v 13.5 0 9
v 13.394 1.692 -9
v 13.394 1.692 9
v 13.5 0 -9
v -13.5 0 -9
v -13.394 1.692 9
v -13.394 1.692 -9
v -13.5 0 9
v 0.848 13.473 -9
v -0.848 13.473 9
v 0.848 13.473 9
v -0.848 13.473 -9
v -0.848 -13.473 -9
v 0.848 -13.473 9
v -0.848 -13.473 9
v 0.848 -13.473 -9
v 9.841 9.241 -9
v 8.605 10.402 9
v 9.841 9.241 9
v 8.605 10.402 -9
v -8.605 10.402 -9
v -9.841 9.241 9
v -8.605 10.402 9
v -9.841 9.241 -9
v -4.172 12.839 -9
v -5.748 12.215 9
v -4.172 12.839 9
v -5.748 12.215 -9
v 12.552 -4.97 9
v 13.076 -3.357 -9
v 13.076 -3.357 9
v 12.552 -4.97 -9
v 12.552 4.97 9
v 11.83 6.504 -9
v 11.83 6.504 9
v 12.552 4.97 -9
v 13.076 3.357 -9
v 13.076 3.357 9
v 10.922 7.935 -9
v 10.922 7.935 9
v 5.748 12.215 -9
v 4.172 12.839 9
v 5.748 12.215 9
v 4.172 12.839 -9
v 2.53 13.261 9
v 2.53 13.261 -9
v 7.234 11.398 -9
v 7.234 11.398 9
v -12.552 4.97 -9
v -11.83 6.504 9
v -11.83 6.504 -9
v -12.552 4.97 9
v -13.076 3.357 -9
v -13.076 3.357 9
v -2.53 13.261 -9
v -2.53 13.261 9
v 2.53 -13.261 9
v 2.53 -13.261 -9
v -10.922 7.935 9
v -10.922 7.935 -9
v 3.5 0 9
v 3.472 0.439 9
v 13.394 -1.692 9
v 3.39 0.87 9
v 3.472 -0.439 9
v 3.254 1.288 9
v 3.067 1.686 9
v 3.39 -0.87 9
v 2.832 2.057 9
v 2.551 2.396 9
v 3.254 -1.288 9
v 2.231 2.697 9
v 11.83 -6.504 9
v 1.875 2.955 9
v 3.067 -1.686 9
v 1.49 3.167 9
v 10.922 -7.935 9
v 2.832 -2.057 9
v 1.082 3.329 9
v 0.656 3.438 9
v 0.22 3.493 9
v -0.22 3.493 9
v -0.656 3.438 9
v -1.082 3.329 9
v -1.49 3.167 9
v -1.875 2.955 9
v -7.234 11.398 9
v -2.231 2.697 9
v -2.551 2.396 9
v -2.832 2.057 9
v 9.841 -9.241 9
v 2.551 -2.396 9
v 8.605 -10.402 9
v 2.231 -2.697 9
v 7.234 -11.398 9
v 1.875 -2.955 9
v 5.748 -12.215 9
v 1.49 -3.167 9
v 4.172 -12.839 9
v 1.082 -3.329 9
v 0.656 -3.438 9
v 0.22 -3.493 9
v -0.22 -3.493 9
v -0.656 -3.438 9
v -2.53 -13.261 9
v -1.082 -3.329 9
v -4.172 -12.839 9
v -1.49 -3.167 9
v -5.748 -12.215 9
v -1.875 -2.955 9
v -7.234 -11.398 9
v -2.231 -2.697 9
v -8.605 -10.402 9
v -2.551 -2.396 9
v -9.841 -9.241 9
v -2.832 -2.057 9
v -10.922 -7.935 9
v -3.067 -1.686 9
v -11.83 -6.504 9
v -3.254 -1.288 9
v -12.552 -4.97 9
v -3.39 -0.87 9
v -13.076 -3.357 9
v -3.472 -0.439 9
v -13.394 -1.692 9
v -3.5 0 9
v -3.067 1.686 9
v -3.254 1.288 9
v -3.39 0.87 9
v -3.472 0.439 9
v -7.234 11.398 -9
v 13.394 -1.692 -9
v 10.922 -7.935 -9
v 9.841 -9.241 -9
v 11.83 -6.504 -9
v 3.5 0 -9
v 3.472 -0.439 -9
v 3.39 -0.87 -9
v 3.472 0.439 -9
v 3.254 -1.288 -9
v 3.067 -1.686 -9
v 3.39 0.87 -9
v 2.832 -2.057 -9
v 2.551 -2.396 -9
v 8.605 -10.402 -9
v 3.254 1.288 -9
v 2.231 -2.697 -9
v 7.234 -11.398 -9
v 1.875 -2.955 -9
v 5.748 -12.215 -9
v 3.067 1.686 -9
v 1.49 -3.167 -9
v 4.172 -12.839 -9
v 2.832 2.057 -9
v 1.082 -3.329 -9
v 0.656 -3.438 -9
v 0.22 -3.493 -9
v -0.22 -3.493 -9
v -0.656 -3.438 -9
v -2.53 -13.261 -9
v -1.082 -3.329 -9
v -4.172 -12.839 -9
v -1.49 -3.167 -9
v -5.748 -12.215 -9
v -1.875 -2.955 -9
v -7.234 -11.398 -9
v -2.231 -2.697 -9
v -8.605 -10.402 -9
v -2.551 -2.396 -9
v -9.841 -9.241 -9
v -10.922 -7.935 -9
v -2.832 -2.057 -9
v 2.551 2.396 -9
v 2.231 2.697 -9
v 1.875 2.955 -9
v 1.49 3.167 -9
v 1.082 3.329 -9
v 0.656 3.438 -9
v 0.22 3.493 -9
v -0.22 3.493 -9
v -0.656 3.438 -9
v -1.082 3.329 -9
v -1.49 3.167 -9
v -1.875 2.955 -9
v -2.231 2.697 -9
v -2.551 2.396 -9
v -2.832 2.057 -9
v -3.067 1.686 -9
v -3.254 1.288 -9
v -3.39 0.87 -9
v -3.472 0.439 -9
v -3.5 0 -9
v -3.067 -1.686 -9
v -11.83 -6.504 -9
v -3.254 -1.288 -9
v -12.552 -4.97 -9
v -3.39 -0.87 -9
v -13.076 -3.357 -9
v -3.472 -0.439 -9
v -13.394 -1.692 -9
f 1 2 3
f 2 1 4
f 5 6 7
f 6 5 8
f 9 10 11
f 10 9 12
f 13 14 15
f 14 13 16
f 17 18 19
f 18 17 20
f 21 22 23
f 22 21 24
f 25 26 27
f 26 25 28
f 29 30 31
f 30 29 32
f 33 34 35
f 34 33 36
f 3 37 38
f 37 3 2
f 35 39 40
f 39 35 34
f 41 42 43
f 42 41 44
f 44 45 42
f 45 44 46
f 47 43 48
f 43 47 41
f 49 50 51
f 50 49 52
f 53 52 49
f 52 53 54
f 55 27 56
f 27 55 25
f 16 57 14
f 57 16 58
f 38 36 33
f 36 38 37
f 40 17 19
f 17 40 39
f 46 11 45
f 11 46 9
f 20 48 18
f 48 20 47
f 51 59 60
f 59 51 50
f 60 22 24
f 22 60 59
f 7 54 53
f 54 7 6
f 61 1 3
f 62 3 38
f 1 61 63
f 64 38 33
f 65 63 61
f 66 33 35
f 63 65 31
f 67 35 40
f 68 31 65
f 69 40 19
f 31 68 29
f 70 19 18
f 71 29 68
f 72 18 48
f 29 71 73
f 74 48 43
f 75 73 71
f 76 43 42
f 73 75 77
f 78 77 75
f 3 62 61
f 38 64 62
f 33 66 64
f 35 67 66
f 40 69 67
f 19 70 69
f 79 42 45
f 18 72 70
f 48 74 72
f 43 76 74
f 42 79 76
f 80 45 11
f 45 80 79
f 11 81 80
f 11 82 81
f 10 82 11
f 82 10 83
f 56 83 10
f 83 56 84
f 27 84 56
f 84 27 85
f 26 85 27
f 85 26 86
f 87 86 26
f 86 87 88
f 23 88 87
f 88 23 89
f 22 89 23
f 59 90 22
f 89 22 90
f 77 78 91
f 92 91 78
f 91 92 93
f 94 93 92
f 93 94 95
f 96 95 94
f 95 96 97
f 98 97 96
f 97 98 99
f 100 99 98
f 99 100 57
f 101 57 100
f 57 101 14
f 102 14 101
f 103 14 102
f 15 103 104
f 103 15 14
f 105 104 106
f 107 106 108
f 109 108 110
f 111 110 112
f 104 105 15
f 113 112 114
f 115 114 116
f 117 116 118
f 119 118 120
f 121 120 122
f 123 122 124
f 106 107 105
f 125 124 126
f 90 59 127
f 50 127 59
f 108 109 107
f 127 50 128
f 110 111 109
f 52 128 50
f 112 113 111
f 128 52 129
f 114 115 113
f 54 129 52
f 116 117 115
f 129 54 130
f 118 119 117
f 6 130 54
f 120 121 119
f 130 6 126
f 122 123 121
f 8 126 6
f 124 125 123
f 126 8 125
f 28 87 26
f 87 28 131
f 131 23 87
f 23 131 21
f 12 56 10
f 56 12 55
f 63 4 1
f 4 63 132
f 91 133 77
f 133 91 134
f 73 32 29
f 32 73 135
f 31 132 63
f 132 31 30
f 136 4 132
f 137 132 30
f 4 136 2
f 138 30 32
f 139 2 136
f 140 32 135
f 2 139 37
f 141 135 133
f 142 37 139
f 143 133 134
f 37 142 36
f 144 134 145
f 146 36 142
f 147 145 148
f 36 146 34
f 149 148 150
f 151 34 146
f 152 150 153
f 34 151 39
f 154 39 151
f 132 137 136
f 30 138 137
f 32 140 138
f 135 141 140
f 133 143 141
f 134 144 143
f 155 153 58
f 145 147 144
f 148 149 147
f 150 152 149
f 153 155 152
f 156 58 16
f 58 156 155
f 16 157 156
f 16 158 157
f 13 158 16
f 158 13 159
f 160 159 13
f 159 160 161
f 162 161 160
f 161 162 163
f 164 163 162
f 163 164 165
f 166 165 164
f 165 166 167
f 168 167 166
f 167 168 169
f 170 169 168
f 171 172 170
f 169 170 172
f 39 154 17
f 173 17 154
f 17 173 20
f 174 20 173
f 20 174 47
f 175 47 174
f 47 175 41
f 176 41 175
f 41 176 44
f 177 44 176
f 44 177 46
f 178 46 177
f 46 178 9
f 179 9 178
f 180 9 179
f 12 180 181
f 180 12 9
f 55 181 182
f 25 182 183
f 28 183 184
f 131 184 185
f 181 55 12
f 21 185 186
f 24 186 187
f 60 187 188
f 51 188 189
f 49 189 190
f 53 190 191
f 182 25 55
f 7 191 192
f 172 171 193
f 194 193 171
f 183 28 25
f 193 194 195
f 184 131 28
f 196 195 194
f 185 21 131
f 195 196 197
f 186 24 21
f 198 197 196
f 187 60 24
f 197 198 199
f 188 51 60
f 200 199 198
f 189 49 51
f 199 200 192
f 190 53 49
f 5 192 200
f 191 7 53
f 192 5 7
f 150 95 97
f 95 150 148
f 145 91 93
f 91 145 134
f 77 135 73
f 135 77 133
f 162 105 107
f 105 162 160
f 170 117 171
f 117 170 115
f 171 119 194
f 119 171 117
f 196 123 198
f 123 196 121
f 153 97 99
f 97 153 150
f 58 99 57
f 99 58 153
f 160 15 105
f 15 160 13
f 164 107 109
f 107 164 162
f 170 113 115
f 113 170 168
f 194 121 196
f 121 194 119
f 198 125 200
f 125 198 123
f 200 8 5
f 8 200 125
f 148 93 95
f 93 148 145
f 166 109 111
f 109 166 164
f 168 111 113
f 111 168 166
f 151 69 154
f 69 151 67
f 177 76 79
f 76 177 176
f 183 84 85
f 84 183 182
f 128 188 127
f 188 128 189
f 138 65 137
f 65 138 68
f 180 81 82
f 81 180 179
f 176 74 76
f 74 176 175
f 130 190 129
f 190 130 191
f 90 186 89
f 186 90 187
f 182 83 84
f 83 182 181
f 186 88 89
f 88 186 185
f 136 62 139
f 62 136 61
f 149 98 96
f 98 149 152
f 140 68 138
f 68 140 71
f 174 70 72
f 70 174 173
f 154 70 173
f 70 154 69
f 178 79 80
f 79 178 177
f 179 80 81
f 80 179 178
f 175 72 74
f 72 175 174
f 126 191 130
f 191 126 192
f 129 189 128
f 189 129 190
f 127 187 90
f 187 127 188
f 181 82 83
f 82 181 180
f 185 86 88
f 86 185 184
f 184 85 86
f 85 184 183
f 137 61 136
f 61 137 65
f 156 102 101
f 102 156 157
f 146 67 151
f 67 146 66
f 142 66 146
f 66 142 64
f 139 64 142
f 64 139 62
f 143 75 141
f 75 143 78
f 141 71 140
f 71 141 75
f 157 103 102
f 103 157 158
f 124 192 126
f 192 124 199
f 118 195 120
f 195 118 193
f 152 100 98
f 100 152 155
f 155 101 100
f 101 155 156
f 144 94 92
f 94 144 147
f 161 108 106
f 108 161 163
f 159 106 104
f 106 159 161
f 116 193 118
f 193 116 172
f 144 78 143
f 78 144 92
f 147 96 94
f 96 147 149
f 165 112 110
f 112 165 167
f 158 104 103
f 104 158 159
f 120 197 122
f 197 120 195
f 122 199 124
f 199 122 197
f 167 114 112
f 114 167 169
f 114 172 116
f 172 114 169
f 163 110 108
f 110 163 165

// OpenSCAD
$fn = 50;


difference() {
	union() {
		translate(v = [0, 0, -9.0000000000]) {
			cylinder(h = 18, r = 13.5000000000);
		}
	}
	union() {
		translate(v = [0, 0, -100.0000000000]) {
			cylinder(h = 200, r = 3.5000000000);
		}
	}
}
